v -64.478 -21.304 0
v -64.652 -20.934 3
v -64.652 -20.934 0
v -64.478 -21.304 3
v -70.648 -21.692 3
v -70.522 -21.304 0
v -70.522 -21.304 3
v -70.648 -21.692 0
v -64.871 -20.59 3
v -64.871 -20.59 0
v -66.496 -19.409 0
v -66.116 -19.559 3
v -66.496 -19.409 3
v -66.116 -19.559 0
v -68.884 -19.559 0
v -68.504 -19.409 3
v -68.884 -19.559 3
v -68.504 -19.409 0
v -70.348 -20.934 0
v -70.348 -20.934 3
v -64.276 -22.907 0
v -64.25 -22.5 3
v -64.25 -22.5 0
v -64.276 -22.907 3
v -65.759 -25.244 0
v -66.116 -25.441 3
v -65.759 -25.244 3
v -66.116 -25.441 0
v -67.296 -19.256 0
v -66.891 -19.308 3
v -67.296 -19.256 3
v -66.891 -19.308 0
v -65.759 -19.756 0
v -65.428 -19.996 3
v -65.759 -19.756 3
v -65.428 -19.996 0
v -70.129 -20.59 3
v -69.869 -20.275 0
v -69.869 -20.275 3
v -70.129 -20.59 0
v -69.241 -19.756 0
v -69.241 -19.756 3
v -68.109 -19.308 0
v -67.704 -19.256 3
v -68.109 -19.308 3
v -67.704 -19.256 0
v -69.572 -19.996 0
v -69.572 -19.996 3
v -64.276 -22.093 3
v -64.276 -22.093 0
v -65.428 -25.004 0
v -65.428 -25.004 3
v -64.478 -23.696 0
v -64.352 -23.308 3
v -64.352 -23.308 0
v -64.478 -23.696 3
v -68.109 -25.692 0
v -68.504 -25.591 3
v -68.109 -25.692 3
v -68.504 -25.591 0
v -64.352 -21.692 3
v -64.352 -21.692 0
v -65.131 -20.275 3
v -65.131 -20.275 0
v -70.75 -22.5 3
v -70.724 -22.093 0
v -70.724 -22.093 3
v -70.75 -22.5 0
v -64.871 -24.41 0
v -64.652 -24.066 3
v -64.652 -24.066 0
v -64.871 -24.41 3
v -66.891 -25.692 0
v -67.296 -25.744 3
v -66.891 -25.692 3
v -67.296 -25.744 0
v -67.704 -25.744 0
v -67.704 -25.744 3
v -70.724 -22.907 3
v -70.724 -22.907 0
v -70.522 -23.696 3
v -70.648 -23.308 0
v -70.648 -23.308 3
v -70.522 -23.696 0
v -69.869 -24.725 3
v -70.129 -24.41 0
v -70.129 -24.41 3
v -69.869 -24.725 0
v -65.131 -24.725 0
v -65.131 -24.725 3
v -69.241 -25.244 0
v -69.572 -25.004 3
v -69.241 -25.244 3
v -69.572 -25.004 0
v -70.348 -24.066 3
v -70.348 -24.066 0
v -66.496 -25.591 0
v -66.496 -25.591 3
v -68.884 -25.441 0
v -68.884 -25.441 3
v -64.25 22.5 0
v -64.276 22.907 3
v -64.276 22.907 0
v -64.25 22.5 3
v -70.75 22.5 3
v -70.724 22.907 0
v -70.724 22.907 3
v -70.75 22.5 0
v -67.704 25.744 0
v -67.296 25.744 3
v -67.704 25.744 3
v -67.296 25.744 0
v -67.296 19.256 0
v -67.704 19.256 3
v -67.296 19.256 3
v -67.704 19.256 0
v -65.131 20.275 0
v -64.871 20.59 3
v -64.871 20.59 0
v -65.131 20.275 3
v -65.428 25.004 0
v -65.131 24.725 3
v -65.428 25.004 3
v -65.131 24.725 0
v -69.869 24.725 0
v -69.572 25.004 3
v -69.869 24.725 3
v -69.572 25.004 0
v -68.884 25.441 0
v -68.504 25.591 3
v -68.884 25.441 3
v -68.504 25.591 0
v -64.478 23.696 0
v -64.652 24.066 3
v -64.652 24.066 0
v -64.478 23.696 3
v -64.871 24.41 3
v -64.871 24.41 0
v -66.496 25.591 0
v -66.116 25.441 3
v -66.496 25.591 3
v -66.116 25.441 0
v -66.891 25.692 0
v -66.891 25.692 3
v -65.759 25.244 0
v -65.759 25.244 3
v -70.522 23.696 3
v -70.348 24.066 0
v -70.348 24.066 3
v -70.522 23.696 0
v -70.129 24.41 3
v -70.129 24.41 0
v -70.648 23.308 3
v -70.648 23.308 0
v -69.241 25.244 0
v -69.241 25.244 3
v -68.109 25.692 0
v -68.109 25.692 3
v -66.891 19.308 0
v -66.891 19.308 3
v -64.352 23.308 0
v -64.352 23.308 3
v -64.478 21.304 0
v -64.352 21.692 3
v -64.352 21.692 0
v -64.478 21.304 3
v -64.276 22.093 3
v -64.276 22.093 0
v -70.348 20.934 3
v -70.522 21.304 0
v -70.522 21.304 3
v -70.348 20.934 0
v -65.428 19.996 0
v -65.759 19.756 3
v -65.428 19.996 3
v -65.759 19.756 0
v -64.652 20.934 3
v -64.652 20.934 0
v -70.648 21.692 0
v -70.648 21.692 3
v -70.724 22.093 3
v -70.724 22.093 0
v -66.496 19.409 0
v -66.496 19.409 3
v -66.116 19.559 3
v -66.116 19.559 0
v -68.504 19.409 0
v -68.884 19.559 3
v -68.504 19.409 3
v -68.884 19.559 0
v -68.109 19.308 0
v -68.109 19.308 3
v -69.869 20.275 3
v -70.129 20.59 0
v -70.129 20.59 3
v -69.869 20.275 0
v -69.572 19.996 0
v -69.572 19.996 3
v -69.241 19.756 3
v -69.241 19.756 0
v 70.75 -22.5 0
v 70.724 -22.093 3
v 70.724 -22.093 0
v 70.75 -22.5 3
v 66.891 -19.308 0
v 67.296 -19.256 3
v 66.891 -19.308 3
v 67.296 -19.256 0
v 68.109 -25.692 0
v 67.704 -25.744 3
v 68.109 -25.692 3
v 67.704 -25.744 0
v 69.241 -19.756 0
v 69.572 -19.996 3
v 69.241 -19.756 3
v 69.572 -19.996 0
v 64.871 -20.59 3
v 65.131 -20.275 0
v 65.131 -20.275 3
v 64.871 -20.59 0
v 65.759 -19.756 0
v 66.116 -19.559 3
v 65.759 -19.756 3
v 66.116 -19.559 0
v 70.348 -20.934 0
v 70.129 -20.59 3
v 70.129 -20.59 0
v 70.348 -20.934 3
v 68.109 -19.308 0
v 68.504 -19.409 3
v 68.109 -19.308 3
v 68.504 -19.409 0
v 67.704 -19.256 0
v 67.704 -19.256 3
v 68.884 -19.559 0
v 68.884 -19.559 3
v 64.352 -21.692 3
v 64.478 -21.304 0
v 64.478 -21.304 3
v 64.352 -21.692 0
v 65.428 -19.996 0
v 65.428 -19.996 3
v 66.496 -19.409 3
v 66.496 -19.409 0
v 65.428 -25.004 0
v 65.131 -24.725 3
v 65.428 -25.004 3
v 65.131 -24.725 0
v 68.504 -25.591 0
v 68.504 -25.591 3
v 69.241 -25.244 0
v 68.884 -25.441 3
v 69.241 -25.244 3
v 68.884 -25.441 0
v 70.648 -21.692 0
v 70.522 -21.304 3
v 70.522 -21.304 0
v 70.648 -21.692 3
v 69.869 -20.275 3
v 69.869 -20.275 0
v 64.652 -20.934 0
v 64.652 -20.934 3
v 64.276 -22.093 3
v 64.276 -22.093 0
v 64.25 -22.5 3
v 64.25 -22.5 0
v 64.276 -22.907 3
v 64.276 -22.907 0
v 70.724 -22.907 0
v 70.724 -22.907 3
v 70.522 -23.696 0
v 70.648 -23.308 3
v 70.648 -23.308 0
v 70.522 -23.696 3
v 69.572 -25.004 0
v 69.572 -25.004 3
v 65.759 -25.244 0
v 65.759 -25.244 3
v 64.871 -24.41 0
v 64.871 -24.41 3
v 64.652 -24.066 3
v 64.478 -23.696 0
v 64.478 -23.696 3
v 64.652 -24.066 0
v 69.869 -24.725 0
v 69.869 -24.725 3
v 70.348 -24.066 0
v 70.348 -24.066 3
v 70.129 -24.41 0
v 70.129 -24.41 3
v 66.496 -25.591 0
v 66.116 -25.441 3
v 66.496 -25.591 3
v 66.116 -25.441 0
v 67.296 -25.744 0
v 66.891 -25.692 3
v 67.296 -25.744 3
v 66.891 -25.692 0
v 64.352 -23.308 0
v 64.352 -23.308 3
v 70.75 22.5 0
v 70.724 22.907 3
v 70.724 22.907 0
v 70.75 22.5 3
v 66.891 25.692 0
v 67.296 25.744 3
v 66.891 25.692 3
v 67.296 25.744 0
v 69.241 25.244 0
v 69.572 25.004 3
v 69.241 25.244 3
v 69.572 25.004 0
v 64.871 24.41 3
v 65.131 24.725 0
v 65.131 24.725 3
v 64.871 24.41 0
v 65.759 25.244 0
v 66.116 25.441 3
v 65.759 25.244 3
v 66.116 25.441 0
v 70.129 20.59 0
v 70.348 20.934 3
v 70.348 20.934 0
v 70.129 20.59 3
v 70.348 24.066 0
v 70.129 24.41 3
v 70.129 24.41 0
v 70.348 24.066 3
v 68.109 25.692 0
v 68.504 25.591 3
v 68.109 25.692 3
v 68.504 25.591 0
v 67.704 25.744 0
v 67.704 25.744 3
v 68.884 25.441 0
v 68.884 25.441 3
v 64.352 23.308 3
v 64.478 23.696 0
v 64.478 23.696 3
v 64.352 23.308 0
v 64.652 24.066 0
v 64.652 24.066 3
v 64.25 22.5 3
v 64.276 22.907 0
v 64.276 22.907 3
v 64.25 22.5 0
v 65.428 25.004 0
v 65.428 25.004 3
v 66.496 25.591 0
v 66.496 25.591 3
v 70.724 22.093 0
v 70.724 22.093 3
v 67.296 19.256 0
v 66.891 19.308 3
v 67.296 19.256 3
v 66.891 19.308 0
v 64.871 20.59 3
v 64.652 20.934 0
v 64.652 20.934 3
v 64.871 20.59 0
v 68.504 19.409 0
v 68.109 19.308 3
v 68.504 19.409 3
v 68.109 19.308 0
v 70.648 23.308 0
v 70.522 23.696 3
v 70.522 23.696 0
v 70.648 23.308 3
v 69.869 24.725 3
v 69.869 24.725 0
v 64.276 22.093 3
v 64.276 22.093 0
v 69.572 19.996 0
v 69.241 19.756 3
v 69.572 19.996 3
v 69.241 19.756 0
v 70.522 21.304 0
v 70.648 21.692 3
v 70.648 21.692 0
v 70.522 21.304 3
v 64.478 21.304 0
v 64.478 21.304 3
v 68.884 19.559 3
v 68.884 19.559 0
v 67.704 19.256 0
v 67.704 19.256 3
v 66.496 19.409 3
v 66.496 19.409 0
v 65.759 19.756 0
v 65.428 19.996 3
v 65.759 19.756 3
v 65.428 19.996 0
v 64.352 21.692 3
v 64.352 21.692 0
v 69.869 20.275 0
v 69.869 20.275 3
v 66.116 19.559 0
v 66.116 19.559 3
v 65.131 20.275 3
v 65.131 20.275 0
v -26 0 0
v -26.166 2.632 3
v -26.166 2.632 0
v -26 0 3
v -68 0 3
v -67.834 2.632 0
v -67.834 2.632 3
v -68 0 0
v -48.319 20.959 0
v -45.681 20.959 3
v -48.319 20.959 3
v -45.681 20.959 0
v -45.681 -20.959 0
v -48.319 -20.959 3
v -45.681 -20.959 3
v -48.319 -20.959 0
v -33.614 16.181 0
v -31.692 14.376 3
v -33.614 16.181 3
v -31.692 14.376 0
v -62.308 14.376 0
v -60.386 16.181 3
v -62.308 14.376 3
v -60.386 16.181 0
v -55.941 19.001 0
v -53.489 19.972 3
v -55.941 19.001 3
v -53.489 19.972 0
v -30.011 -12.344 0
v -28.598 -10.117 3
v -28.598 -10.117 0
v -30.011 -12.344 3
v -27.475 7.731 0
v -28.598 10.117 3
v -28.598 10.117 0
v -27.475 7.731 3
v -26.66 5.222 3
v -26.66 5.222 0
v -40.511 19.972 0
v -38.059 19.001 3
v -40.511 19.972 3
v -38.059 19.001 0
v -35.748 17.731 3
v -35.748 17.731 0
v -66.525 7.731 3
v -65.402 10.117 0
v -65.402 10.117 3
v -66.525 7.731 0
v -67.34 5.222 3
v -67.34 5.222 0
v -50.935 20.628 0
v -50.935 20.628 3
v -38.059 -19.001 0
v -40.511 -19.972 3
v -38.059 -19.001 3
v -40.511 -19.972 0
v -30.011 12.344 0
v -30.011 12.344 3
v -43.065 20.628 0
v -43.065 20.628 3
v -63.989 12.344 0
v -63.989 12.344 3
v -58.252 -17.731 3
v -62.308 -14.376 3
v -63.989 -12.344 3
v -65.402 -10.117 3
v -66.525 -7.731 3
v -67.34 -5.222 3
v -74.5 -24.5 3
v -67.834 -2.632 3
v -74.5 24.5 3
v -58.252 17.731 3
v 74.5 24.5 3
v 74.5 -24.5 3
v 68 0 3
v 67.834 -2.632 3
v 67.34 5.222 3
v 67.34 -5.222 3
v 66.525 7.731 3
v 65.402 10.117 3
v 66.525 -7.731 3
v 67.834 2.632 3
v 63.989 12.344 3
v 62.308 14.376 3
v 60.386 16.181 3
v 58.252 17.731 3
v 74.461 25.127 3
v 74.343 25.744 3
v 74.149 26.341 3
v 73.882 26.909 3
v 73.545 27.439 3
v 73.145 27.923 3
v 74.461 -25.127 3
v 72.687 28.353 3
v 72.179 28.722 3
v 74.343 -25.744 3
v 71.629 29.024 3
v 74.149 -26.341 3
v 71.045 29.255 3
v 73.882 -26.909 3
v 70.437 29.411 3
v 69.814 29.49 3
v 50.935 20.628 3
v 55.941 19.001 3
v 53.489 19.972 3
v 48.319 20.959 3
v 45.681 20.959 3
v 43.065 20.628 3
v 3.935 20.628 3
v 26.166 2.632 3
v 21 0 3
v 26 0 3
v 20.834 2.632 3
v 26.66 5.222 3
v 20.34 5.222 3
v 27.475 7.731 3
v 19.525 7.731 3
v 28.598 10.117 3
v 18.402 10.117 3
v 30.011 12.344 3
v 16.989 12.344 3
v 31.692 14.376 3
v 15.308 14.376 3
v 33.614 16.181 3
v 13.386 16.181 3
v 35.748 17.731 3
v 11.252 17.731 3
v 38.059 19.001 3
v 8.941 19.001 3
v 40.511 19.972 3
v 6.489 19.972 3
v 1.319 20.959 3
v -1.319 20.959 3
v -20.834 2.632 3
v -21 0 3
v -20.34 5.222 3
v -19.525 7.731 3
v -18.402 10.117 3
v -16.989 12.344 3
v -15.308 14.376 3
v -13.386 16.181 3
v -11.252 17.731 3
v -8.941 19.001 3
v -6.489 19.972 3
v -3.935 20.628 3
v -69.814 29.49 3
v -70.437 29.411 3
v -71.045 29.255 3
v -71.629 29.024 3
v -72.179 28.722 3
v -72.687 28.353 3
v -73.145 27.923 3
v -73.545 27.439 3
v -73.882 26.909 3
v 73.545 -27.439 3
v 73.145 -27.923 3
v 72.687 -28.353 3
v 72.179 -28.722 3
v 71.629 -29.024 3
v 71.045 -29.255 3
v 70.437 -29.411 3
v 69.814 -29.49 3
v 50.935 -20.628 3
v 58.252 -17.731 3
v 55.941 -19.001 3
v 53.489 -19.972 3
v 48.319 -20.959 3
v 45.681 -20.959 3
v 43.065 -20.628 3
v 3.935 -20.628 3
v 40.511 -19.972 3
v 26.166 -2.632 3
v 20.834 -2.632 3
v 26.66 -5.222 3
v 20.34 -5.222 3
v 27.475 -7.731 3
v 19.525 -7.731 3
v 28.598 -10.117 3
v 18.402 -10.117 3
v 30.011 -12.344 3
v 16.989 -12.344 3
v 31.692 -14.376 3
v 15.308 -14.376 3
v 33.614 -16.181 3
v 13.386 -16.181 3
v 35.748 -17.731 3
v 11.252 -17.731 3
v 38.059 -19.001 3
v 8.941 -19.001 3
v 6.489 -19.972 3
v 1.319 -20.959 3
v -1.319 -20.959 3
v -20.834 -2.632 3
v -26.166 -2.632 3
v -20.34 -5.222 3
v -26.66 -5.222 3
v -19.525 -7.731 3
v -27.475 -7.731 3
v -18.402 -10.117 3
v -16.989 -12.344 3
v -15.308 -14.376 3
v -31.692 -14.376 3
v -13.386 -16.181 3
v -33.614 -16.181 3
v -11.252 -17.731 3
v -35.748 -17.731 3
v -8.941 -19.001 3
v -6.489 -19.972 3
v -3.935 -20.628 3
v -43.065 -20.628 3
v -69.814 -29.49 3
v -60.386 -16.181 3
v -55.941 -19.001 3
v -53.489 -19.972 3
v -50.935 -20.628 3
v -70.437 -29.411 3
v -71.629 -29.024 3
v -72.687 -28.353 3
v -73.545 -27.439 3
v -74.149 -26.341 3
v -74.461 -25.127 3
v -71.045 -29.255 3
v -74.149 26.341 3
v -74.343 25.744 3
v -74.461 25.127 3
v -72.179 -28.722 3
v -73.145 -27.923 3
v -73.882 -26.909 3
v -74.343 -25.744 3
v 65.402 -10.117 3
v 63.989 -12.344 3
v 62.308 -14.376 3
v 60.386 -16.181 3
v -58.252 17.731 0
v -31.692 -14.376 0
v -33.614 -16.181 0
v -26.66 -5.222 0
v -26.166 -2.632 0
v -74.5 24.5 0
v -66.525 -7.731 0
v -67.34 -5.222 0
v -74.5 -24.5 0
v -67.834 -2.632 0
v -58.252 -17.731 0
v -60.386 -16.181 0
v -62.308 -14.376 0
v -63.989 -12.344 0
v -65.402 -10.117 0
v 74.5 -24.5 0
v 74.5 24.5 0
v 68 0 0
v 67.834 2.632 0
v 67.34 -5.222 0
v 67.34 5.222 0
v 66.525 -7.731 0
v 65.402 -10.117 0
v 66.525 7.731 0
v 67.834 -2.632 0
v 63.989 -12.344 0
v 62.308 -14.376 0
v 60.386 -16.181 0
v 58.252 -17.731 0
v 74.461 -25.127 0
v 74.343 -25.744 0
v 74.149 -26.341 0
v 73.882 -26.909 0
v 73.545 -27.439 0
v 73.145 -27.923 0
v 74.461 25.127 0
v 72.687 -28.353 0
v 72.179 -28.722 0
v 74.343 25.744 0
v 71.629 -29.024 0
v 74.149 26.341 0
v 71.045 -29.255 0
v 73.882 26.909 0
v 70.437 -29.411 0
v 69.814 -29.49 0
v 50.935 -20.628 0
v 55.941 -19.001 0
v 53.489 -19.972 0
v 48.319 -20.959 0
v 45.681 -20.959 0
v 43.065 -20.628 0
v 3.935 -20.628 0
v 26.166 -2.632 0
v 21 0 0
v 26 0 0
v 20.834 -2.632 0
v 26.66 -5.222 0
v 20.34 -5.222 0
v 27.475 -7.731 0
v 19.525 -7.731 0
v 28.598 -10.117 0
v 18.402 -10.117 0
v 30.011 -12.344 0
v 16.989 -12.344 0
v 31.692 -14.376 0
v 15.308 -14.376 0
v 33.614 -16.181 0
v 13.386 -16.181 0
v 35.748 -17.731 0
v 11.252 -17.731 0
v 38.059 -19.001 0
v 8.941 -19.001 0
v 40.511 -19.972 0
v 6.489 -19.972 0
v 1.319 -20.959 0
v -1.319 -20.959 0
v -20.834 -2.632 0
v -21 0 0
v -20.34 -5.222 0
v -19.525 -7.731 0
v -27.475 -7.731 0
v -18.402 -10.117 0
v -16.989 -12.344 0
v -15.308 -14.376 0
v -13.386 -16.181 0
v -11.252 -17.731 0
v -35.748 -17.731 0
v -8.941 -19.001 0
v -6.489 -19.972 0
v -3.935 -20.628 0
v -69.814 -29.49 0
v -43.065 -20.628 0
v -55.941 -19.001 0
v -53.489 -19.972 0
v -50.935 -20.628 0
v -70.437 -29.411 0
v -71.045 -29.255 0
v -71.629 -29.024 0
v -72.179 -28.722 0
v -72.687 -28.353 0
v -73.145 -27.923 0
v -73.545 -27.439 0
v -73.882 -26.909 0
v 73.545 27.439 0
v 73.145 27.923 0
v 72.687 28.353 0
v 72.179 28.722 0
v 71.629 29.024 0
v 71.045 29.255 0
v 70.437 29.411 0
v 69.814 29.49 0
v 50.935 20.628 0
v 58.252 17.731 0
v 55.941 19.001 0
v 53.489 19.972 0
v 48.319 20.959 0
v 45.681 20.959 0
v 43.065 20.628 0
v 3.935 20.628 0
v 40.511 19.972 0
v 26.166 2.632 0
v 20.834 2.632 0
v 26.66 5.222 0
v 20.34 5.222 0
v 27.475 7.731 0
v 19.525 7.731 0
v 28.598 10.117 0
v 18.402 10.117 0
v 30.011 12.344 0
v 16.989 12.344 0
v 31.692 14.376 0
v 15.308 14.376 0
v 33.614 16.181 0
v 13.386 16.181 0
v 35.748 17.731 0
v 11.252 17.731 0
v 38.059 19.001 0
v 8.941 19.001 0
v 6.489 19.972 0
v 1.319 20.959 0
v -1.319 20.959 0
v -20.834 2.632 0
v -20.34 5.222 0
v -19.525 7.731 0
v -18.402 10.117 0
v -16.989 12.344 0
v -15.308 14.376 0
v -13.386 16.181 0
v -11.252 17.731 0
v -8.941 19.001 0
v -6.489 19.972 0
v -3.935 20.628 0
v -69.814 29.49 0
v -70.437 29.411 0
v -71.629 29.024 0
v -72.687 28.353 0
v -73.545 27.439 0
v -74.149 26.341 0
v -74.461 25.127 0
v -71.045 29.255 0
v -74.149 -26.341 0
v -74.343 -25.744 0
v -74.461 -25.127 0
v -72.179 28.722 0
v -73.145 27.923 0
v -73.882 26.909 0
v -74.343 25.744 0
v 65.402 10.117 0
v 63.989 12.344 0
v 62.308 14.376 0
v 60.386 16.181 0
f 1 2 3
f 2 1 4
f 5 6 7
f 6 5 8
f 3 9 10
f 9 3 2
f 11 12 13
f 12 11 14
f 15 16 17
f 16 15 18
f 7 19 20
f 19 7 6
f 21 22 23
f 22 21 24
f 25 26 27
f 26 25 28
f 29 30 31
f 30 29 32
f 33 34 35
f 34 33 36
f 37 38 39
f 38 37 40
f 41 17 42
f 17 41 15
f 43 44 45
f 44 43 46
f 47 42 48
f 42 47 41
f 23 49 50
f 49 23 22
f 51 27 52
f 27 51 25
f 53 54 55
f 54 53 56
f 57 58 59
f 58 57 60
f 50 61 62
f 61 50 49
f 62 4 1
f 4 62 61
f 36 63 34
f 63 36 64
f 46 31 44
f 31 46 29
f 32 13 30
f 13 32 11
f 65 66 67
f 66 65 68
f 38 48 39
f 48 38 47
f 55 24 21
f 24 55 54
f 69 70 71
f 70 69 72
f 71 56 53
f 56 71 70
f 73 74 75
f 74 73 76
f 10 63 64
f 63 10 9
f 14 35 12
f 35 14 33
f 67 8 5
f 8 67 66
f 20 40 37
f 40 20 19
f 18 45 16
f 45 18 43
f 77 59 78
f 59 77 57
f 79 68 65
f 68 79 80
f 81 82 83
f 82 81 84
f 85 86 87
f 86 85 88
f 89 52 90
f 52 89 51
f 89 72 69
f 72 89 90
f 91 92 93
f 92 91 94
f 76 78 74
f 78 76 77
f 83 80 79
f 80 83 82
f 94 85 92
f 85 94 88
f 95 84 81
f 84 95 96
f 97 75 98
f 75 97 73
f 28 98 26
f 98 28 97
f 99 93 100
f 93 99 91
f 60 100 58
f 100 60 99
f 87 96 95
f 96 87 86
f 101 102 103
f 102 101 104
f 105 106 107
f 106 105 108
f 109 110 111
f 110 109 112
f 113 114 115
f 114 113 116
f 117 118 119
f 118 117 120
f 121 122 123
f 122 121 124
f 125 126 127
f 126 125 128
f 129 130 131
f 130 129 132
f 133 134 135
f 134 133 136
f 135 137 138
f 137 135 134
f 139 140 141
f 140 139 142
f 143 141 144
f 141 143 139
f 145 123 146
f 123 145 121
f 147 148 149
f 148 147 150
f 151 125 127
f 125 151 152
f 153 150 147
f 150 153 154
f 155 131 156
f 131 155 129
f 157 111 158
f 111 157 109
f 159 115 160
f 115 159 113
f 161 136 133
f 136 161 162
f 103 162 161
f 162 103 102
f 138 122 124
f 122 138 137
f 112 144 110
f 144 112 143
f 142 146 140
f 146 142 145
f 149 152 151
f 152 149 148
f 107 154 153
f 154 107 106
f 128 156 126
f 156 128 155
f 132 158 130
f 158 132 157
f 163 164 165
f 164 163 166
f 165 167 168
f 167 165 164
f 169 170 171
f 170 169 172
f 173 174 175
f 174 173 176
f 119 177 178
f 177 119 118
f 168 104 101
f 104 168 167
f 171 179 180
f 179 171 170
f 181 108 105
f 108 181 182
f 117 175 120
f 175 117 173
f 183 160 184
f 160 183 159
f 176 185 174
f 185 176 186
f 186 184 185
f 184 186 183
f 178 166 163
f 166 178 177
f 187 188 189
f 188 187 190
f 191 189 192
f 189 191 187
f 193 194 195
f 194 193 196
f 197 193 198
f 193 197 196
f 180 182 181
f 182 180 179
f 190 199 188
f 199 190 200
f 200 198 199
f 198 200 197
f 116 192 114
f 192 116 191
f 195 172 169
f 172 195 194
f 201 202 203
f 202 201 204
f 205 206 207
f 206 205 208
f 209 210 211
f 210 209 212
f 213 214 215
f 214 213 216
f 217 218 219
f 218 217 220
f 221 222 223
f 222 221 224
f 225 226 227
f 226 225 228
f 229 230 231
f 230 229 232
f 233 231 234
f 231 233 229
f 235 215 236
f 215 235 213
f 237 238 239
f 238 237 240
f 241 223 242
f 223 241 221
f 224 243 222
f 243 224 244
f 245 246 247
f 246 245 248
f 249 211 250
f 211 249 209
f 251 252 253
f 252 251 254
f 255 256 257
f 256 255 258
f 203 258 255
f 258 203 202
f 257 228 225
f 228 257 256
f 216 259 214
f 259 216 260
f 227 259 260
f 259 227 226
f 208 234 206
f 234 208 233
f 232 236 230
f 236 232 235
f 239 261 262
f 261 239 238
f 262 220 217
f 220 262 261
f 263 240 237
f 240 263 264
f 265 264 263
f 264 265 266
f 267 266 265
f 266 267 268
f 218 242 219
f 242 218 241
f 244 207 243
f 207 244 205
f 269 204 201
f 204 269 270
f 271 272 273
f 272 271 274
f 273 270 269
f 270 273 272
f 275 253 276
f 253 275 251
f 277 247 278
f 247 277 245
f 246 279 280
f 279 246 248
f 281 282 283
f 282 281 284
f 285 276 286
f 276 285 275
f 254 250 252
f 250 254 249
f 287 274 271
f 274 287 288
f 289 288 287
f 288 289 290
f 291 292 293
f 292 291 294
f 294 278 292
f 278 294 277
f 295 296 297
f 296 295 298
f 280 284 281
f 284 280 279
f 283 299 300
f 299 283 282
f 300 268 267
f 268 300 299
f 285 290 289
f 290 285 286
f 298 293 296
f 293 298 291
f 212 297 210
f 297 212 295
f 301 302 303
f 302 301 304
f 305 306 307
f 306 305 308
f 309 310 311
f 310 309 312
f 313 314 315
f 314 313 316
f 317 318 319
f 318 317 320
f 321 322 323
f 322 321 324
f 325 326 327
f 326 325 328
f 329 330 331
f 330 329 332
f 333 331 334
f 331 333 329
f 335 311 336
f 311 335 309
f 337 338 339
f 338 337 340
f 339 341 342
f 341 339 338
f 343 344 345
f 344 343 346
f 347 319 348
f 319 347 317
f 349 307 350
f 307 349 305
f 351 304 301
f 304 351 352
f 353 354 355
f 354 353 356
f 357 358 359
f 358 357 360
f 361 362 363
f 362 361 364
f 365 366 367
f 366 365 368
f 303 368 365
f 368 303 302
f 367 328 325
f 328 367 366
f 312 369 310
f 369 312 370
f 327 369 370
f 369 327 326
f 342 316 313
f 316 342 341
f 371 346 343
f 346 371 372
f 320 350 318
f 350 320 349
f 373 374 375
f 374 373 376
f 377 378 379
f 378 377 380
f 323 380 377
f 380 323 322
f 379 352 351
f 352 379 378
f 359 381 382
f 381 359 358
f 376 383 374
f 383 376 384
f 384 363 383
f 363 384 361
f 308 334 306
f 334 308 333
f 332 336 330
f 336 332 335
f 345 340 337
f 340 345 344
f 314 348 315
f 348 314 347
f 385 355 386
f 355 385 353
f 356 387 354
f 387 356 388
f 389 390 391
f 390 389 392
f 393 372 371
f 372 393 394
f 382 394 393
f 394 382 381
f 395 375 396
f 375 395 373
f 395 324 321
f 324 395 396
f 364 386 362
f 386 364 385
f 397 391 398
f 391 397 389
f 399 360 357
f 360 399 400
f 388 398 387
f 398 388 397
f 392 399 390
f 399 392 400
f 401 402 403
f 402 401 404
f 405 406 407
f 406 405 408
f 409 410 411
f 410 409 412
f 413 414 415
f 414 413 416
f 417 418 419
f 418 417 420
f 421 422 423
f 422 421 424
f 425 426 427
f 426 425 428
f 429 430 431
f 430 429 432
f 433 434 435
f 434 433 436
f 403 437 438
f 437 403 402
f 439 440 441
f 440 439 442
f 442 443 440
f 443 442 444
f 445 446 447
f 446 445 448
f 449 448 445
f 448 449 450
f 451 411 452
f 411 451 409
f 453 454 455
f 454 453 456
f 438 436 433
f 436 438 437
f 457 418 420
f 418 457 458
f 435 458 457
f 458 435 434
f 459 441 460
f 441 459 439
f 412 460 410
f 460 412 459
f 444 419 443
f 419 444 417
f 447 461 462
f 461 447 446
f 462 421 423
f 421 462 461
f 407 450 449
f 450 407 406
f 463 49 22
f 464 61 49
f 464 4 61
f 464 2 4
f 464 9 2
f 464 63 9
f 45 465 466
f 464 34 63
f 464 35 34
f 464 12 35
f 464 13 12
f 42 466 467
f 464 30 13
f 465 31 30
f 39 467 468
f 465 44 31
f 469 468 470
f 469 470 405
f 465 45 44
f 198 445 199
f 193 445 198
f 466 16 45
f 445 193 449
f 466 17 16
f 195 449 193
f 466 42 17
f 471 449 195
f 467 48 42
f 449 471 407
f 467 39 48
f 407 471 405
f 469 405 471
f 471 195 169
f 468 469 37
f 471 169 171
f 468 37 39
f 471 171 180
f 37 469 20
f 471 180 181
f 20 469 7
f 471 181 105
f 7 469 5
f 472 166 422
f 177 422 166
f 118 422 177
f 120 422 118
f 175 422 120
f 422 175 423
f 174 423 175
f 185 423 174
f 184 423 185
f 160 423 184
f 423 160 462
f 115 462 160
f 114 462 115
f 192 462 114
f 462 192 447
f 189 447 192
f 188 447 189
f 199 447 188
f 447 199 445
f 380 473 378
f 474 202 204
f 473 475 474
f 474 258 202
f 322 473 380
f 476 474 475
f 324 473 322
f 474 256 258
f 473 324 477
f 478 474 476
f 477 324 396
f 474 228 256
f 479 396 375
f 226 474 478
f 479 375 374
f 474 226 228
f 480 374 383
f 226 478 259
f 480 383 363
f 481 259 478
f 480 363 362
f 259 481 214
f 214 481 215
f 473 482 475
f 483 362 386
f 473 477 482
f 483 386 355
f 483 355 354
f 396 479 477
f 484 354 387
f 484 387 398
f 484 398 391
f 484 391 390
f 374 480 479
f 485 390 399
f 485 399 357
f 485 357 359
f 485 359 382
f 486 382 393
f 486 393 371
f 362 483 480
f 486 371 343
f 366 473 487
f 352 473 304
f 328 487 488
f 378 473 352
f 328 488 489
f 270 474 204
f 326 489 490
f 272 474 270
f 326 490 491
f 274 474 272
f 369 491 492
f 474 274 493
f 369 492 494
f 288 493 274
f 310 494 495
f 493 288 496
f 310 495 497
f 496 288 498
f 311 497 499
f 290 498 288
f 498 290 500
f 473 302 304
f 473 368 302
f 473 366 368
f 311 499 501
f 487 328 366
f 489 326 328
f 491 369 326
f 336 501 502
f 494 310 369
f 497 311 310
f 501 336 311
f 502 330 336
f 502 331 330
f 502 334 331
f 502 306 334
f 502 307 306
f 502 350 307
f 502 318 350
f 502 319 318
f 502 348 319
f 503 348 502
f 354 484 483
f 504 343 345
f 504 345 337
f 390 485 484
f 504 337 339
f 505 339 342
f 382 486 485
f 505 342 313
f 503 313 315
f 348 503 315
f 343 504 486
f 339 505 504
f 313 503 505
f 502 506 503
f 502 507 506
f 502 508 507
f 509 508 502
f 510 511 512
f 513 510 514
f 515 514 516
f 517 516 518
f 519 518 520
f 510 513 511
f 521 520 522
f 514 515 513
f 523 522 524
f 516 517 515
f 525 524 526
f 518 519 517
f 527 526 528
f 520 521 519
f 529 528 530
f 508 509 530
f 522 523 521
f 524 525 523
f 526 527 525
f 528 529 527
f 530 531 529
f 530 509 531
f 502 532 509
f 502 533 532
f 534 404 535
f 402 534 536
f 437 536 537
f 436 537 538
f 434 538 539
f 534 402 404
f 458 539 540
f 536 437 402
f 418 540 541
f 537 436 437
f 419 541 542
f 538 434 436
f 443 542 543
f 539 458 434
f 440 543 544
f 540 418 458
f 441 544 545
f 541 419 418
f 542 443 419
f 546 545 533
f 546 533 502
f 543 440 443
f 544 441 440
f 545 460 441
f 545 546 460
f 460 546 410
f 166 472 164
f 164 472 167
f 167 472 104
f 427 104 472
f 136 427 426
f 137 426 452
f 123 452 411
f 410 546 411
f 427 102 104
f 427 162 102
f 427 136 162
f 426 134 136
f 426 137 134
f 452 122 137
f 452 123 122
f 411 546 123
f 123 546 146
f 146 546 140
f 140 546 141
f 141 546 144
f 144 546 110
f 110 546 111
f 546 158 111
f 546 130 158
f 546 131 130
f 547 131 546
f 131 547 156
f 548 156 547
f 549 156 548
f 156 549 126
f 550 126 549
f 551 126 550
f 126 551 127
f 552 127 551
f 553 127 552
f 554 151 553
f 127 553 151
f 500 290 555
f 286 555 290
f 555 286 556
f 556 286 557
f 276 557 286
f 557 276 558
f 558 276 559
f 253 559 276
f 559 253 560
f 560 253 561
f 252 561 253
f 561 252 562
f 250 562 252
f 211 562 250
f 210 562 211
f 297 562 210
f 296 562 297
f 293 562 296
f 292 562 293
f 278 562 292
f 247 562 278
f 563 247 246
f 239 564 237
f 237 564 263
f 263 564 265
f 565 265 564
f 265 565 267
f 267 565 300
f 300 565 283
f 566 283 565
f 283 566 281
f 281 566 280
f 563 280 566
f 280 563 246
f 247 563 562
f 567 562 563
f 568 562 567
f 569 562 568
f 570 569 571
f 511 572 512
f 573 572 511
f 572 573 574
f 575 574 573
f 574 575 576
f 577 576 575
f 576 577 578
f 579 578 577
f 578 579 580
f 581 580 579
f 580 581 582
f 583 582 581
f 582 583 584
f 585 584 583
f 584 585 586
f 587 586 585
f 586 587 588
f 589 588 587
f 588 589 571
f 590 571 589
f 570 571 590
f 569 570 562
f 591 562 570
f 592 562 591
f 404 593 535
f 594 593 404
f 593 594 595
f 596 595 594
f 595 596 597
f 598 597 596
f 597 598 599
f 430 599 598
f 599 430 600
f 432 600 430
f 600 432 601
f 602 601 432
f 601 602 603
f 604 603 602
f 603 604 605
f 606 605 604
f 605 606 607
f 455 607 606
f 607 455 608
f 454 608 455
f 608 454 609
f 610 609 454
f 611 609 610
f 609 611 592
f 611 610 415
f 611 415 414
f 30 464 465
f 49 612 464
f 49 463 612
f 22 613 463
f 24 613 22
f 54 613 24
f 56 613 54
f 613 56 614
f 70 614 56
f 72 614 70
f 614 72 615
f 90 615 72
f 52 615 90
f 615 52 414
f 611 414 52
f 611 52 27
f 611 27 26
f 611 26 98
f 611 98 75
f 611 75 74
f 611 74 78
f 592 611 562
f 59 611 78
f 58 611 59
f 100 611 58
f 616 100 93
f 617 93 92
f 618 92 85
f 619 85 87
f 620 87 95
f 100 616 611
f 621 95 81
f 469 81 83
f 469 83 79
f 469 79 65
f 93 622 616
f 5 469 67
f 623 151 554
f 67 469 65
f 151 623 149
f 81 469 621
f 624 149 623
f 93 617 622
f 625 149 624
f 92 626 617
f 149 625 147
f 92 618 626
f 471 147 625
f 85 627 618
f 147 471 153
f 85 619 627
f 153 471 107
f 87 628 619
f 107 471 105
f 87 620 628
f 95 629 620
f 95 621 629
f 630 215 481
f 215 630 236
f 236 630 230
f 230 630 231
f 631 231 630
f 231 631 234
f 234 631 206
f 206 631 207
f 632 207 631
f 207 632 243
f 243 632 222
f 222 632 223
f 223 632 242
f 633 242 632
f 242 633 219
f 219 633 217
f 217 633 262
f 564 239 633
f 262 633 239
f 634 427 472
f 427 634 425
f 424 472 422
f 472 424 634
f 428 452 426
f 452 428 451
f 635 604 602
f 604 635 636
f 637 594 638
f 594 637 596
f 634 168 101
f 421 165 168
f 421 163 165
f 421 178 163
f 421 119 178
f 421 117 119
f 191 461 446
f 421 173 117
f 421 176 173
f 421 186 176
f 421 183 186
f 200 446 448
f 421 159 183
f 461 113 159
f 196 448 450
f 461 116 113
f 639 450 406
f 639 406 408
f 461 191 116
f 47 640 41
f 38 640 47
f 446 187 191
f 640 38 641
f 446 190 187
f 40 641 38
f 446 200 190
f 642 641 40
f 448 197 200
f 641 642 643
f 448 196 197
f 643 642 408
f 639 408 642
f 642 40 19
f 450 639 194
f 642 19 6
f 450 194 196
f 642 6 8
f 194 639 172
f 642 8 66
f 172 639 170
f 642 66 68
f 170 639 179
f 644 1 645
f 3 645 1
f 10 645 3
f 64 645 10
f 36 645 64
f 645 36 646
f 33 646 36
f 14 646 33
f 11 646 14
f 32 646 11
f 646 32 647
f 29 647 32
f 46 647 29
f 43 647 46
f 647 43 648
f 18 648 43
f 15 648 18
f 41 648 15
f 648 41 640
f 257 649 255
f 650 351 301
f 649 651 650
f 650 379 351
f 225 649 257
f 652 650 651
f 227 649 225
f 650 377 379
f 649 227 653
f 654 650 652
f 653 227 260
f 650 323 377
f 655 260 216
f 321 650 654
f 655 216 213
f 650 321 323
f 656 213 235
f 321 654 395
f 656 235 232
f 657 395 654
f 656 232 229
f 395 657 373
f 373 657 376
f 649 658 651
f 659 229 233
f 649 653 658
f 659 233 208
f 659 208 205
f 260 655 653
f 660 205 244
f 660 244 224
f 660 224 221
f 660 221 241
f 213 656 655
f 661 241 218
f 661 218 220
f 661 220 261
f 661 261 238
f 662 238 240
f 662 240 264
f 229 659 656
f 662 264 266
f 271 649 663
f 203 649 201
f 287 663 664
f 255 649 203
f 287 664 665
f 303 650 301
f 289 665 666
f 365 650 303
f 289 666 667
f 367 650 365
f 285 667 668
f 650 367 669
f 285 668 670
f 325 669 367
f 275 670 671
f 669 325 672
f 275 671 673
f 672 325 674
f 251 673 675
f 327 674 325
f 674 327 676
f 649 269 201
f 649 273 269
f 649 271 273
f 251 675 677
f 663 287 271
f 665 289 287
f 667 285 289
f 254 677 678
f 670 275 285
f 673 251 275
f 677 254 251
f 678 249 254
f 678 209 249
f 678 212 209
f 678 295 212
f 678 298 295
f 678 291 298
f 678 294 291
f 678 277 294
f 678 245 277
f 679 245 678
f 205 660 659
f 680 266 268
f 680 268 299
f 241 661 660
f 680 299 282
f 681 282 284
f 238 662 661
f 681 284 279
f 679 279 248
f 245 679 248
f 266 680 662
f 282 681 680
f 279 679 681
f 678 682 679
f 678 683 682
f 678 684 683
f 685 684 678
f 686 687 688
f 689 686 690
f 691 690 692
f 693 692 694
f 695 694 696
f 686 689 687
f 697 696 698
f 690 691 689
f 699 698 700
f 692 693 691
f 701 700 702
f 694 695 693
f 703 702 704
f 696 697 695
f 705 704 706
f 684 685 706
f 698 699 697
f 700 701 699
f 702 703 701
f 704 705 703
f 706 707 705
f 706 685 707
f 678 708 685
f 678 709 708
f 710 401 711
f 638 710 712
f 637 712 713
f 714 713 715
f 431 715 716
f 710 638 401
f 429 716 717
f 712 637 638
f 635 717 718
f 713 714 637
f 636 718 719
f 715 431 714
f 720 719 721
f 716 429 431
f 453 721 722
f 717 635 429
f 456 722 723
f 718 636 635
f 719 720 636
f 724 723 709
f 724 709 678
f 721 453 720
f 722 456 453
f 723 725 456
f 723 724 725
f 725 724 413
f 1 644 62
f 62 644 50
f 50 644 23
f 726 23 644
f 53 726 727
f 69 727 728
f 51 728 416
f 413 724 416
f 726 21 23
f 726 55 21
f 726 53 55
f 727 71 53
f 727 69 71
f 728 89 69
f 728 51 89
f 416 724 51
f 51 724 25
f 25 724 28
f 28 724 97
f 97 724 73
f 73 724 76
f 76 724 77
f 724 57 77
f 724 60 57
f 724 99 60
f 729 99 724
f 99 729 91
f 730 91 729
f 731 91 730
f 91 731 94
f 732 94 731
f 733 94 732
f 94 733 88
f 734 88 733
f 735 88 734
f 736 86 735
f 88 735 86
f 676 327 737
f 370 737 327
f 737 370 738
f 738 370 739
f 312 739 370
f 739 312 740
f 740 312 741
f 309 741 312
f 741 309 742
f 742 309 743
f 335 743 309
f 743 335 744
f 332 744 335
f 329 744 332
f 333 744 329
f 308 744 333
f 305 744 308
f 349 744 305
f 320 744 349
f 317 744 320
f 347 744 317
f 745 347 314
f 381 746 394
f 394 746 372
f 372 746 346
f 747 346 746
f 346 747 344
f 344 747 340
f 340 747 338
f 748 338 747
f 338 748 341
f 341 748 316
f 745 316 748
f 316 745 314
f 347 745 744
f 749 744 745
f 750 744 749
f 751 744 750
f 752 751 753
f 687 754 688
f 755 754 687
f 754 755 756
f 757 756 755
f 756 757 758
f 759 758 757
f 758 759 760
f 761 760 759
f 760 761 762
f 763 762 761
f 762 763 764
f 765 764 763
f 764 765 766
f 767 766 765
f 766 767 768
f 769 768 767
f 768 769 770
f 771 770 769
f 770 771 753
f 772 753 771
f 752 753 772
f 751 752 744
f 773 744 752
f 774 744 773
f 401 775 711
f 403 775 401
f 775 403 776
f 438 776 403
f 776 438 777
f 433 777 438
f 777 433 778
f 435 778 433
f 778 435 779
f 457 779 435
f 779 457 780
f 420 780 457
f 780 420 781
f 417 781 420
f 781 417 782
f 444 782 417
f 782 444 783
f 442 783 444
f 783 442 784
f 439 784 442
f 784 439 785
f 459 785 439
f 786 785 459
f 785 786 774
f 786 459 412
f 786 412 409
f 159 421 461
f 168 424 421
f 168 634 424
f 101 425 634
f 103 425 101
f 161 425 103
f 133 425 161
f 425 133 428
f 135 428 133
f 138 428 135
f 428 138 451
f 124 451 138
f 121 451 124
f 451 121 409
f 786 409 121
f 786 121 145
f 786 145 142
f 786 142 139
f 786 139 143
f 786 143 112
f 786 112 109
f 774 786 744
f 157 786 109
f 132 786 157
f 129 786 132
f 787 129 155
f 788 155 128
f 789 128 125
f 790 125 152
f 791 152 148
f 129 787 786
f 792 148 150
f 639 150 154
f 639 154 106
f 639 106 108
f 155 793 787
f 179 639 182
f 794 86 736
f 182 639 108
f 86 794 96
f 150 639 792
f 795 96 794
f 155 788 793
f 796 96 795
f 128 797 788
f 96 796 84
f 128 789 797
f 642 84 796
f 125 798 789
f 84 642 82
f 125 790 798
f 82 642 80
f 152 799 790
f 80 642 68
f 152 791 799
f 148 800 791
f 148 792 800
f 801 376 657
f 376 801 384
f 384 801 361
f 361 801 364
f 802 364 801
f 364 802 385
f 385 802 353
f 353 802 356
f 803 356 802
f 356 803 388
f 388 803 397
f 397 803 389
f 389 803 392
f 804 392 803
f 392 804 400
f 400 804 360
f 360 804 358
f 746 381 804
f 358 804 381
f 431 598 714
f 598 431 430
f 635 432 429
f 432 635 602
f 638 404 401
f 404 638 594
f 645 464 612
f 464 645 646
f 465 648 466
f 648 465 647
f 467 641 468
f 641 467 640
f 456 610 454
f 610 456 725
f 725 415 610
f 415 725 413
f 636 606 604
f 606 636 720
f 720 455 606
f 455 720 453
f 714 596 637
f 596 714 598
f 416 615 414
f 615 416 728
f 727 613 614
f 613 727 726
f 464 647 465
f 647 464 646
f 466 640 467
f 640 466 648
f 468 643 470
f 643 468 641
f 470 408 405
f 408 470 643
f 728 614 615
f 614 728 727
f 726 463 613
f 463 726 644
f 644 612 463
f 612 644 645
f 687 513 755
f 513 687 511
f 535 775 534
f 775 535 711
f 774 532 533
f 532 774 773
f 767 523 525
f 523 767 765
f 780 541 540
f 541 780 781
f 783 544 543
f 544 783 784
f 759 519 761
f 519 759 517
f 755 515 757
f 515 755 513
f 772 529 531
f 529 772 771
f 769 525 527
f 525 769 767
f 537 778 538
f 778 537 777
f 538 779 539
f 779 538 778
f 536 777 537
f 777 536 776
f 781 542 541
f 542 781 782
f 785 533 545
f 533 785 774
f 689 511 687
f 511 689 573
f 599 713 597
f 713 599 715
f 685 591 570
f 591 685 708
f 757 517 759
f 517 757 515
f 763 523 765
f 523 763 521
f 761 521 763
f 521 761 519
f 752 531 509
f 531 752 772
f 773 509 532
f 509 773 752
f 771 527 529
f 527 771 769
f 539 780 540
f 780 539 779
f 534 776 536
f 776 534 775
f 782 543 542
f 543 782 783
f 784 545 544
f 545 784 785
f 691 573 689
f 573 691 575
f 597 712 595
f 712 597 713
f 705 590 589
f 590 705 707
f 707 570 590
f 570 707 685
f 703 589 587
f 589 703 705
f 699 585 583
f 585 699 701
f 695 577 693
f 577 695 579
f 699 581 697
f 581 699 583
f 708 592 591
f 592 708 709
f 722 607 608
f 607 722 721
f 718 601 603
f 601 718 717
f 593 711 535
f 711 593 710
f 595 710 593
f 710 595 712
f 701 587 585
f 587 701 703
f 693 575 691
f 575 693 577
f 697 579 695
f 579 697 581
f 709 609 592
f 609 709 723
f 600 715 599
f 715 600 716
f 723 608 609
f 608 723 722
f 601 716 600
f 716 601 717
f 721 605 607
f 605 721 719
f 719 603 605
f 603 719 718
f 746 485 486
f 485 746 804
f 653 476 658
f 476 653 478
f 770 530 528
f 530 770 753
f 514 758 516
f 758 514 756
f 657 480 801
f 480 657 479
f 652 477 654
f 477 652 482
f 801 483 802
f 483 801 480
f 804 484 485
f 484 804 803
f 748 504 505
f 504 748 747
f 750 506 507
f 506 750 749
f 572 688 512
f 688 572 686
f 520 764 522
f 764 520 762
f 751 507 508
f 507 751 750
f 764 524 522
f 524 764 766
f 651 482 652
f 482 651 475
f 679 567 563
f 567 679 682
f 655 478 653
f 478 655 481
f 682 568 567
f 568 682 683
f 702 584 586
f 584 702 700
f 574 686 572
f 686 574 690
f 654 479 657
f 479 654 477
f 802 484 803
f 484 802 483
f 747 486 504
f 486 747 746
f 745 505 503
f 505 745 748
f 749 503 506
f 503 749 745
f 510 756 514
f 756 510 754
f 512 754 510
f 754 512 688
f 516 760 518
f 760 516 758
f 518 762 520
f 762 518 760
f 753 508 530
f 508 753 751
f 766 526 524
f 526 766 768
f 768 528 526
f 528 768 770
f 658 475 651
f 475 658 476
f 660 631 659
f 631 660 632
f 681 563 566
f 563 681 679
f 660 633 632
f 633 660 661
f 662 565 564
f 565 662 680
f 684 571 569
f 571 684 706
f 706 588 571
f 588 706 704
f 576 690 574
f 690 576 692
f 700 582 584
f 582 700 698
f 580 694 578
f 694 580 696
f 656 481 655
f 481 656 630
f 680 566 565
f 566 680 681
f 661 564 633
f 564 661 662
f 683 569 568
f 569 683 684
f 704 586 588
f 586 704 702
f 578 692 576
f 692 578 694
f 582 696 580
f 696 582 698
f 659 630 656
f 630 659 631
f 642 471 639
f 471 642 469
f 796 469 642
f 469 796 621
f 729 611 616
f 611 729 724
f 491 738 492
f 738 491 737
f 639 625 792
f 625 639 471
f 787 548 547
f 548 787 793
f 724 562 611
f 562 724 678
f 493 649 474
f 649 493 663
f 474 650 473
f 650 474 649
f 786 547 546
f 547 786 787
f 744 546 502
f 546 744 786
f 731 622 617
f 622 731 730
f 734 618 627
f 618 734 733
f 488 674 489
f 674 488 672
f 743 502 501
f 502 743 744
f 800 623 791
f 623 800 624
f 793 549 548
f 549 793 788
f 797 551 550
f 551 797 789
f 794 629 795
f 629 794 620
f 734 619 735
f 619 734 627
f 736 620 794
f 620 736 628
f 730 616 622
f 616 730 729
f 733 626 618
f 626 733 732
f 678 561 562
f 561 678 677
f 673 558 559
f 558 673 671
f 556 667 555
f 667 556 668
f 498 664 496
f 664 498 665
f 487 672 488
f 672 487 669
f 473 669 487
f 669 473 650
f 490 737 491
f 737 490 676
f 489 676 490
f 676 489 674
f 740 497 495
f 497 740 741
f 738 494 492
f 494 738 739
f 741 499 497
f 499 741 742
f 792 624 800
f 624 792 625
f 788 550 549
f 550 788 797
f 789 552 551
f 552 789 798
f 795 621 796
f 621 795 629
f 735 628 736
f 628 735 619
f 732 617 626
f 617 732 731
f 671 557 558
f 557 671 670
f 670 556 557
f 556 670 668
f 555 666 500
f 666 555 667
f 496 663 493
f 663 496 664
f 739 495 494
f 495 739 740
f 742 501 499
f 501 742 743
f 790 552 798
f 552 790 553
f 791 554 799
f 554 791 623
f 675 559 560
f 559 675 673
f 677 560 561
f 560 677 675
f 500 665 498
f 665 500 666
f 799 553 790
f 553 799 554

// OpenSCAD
$fn = 50;


difference() {
	union() {
		hull() {
			translate(v = [-69.5000000000, 24.5000000000, 0]) {
				cylinder(h = 3, r = 5);
			}
			translate(v = [69.5000000000, 24.5000000000, 0]) {
				cylinder(h = 3, r = 5);
			}
			translate(v = [-69.5000000000, -24.5000000000, 0]) {
				cylinder(h = 3, r = 5);
			}
			translate(v = [69.5000000000, -24.5000000000, 0]) {
				cylinder(h = 3, r = 5);
			}
		}
	}
	union() {
		#translate(v = [-67.5000000000, -22.5000000000, -100.0000000000]) {
			cylinder(h = 200, r = 3.2500000000);
		}
		#translate(v = [-67.5000000000, 22.5000000000, -100.0000000000]) {
			cylinder(h = 200, r = 3.2500000000);
		}
		#translate(v = [67.5000000000, -22.5000000000, -100.0000000000]) {
			cylinder(h = 200, r = 3.2500000000);
		}
		#translate(v = [67.5000000000, 22.5000000000, -100.0000000000]) {
			cylinder(h = 200, r = 3.2500000000);
		}
		#translate(v = [-47.0000000000, 0, 0]) {
			cylinder(h = 3, r = 21.0000000000);
		}
		#cylinder(h = 3, r = 21.0000000000);
		#translate(v = [47.0000000000, 0, 0]) {
			cylinder(h = 3, r = 21.0000000000);
		}
	}
}
